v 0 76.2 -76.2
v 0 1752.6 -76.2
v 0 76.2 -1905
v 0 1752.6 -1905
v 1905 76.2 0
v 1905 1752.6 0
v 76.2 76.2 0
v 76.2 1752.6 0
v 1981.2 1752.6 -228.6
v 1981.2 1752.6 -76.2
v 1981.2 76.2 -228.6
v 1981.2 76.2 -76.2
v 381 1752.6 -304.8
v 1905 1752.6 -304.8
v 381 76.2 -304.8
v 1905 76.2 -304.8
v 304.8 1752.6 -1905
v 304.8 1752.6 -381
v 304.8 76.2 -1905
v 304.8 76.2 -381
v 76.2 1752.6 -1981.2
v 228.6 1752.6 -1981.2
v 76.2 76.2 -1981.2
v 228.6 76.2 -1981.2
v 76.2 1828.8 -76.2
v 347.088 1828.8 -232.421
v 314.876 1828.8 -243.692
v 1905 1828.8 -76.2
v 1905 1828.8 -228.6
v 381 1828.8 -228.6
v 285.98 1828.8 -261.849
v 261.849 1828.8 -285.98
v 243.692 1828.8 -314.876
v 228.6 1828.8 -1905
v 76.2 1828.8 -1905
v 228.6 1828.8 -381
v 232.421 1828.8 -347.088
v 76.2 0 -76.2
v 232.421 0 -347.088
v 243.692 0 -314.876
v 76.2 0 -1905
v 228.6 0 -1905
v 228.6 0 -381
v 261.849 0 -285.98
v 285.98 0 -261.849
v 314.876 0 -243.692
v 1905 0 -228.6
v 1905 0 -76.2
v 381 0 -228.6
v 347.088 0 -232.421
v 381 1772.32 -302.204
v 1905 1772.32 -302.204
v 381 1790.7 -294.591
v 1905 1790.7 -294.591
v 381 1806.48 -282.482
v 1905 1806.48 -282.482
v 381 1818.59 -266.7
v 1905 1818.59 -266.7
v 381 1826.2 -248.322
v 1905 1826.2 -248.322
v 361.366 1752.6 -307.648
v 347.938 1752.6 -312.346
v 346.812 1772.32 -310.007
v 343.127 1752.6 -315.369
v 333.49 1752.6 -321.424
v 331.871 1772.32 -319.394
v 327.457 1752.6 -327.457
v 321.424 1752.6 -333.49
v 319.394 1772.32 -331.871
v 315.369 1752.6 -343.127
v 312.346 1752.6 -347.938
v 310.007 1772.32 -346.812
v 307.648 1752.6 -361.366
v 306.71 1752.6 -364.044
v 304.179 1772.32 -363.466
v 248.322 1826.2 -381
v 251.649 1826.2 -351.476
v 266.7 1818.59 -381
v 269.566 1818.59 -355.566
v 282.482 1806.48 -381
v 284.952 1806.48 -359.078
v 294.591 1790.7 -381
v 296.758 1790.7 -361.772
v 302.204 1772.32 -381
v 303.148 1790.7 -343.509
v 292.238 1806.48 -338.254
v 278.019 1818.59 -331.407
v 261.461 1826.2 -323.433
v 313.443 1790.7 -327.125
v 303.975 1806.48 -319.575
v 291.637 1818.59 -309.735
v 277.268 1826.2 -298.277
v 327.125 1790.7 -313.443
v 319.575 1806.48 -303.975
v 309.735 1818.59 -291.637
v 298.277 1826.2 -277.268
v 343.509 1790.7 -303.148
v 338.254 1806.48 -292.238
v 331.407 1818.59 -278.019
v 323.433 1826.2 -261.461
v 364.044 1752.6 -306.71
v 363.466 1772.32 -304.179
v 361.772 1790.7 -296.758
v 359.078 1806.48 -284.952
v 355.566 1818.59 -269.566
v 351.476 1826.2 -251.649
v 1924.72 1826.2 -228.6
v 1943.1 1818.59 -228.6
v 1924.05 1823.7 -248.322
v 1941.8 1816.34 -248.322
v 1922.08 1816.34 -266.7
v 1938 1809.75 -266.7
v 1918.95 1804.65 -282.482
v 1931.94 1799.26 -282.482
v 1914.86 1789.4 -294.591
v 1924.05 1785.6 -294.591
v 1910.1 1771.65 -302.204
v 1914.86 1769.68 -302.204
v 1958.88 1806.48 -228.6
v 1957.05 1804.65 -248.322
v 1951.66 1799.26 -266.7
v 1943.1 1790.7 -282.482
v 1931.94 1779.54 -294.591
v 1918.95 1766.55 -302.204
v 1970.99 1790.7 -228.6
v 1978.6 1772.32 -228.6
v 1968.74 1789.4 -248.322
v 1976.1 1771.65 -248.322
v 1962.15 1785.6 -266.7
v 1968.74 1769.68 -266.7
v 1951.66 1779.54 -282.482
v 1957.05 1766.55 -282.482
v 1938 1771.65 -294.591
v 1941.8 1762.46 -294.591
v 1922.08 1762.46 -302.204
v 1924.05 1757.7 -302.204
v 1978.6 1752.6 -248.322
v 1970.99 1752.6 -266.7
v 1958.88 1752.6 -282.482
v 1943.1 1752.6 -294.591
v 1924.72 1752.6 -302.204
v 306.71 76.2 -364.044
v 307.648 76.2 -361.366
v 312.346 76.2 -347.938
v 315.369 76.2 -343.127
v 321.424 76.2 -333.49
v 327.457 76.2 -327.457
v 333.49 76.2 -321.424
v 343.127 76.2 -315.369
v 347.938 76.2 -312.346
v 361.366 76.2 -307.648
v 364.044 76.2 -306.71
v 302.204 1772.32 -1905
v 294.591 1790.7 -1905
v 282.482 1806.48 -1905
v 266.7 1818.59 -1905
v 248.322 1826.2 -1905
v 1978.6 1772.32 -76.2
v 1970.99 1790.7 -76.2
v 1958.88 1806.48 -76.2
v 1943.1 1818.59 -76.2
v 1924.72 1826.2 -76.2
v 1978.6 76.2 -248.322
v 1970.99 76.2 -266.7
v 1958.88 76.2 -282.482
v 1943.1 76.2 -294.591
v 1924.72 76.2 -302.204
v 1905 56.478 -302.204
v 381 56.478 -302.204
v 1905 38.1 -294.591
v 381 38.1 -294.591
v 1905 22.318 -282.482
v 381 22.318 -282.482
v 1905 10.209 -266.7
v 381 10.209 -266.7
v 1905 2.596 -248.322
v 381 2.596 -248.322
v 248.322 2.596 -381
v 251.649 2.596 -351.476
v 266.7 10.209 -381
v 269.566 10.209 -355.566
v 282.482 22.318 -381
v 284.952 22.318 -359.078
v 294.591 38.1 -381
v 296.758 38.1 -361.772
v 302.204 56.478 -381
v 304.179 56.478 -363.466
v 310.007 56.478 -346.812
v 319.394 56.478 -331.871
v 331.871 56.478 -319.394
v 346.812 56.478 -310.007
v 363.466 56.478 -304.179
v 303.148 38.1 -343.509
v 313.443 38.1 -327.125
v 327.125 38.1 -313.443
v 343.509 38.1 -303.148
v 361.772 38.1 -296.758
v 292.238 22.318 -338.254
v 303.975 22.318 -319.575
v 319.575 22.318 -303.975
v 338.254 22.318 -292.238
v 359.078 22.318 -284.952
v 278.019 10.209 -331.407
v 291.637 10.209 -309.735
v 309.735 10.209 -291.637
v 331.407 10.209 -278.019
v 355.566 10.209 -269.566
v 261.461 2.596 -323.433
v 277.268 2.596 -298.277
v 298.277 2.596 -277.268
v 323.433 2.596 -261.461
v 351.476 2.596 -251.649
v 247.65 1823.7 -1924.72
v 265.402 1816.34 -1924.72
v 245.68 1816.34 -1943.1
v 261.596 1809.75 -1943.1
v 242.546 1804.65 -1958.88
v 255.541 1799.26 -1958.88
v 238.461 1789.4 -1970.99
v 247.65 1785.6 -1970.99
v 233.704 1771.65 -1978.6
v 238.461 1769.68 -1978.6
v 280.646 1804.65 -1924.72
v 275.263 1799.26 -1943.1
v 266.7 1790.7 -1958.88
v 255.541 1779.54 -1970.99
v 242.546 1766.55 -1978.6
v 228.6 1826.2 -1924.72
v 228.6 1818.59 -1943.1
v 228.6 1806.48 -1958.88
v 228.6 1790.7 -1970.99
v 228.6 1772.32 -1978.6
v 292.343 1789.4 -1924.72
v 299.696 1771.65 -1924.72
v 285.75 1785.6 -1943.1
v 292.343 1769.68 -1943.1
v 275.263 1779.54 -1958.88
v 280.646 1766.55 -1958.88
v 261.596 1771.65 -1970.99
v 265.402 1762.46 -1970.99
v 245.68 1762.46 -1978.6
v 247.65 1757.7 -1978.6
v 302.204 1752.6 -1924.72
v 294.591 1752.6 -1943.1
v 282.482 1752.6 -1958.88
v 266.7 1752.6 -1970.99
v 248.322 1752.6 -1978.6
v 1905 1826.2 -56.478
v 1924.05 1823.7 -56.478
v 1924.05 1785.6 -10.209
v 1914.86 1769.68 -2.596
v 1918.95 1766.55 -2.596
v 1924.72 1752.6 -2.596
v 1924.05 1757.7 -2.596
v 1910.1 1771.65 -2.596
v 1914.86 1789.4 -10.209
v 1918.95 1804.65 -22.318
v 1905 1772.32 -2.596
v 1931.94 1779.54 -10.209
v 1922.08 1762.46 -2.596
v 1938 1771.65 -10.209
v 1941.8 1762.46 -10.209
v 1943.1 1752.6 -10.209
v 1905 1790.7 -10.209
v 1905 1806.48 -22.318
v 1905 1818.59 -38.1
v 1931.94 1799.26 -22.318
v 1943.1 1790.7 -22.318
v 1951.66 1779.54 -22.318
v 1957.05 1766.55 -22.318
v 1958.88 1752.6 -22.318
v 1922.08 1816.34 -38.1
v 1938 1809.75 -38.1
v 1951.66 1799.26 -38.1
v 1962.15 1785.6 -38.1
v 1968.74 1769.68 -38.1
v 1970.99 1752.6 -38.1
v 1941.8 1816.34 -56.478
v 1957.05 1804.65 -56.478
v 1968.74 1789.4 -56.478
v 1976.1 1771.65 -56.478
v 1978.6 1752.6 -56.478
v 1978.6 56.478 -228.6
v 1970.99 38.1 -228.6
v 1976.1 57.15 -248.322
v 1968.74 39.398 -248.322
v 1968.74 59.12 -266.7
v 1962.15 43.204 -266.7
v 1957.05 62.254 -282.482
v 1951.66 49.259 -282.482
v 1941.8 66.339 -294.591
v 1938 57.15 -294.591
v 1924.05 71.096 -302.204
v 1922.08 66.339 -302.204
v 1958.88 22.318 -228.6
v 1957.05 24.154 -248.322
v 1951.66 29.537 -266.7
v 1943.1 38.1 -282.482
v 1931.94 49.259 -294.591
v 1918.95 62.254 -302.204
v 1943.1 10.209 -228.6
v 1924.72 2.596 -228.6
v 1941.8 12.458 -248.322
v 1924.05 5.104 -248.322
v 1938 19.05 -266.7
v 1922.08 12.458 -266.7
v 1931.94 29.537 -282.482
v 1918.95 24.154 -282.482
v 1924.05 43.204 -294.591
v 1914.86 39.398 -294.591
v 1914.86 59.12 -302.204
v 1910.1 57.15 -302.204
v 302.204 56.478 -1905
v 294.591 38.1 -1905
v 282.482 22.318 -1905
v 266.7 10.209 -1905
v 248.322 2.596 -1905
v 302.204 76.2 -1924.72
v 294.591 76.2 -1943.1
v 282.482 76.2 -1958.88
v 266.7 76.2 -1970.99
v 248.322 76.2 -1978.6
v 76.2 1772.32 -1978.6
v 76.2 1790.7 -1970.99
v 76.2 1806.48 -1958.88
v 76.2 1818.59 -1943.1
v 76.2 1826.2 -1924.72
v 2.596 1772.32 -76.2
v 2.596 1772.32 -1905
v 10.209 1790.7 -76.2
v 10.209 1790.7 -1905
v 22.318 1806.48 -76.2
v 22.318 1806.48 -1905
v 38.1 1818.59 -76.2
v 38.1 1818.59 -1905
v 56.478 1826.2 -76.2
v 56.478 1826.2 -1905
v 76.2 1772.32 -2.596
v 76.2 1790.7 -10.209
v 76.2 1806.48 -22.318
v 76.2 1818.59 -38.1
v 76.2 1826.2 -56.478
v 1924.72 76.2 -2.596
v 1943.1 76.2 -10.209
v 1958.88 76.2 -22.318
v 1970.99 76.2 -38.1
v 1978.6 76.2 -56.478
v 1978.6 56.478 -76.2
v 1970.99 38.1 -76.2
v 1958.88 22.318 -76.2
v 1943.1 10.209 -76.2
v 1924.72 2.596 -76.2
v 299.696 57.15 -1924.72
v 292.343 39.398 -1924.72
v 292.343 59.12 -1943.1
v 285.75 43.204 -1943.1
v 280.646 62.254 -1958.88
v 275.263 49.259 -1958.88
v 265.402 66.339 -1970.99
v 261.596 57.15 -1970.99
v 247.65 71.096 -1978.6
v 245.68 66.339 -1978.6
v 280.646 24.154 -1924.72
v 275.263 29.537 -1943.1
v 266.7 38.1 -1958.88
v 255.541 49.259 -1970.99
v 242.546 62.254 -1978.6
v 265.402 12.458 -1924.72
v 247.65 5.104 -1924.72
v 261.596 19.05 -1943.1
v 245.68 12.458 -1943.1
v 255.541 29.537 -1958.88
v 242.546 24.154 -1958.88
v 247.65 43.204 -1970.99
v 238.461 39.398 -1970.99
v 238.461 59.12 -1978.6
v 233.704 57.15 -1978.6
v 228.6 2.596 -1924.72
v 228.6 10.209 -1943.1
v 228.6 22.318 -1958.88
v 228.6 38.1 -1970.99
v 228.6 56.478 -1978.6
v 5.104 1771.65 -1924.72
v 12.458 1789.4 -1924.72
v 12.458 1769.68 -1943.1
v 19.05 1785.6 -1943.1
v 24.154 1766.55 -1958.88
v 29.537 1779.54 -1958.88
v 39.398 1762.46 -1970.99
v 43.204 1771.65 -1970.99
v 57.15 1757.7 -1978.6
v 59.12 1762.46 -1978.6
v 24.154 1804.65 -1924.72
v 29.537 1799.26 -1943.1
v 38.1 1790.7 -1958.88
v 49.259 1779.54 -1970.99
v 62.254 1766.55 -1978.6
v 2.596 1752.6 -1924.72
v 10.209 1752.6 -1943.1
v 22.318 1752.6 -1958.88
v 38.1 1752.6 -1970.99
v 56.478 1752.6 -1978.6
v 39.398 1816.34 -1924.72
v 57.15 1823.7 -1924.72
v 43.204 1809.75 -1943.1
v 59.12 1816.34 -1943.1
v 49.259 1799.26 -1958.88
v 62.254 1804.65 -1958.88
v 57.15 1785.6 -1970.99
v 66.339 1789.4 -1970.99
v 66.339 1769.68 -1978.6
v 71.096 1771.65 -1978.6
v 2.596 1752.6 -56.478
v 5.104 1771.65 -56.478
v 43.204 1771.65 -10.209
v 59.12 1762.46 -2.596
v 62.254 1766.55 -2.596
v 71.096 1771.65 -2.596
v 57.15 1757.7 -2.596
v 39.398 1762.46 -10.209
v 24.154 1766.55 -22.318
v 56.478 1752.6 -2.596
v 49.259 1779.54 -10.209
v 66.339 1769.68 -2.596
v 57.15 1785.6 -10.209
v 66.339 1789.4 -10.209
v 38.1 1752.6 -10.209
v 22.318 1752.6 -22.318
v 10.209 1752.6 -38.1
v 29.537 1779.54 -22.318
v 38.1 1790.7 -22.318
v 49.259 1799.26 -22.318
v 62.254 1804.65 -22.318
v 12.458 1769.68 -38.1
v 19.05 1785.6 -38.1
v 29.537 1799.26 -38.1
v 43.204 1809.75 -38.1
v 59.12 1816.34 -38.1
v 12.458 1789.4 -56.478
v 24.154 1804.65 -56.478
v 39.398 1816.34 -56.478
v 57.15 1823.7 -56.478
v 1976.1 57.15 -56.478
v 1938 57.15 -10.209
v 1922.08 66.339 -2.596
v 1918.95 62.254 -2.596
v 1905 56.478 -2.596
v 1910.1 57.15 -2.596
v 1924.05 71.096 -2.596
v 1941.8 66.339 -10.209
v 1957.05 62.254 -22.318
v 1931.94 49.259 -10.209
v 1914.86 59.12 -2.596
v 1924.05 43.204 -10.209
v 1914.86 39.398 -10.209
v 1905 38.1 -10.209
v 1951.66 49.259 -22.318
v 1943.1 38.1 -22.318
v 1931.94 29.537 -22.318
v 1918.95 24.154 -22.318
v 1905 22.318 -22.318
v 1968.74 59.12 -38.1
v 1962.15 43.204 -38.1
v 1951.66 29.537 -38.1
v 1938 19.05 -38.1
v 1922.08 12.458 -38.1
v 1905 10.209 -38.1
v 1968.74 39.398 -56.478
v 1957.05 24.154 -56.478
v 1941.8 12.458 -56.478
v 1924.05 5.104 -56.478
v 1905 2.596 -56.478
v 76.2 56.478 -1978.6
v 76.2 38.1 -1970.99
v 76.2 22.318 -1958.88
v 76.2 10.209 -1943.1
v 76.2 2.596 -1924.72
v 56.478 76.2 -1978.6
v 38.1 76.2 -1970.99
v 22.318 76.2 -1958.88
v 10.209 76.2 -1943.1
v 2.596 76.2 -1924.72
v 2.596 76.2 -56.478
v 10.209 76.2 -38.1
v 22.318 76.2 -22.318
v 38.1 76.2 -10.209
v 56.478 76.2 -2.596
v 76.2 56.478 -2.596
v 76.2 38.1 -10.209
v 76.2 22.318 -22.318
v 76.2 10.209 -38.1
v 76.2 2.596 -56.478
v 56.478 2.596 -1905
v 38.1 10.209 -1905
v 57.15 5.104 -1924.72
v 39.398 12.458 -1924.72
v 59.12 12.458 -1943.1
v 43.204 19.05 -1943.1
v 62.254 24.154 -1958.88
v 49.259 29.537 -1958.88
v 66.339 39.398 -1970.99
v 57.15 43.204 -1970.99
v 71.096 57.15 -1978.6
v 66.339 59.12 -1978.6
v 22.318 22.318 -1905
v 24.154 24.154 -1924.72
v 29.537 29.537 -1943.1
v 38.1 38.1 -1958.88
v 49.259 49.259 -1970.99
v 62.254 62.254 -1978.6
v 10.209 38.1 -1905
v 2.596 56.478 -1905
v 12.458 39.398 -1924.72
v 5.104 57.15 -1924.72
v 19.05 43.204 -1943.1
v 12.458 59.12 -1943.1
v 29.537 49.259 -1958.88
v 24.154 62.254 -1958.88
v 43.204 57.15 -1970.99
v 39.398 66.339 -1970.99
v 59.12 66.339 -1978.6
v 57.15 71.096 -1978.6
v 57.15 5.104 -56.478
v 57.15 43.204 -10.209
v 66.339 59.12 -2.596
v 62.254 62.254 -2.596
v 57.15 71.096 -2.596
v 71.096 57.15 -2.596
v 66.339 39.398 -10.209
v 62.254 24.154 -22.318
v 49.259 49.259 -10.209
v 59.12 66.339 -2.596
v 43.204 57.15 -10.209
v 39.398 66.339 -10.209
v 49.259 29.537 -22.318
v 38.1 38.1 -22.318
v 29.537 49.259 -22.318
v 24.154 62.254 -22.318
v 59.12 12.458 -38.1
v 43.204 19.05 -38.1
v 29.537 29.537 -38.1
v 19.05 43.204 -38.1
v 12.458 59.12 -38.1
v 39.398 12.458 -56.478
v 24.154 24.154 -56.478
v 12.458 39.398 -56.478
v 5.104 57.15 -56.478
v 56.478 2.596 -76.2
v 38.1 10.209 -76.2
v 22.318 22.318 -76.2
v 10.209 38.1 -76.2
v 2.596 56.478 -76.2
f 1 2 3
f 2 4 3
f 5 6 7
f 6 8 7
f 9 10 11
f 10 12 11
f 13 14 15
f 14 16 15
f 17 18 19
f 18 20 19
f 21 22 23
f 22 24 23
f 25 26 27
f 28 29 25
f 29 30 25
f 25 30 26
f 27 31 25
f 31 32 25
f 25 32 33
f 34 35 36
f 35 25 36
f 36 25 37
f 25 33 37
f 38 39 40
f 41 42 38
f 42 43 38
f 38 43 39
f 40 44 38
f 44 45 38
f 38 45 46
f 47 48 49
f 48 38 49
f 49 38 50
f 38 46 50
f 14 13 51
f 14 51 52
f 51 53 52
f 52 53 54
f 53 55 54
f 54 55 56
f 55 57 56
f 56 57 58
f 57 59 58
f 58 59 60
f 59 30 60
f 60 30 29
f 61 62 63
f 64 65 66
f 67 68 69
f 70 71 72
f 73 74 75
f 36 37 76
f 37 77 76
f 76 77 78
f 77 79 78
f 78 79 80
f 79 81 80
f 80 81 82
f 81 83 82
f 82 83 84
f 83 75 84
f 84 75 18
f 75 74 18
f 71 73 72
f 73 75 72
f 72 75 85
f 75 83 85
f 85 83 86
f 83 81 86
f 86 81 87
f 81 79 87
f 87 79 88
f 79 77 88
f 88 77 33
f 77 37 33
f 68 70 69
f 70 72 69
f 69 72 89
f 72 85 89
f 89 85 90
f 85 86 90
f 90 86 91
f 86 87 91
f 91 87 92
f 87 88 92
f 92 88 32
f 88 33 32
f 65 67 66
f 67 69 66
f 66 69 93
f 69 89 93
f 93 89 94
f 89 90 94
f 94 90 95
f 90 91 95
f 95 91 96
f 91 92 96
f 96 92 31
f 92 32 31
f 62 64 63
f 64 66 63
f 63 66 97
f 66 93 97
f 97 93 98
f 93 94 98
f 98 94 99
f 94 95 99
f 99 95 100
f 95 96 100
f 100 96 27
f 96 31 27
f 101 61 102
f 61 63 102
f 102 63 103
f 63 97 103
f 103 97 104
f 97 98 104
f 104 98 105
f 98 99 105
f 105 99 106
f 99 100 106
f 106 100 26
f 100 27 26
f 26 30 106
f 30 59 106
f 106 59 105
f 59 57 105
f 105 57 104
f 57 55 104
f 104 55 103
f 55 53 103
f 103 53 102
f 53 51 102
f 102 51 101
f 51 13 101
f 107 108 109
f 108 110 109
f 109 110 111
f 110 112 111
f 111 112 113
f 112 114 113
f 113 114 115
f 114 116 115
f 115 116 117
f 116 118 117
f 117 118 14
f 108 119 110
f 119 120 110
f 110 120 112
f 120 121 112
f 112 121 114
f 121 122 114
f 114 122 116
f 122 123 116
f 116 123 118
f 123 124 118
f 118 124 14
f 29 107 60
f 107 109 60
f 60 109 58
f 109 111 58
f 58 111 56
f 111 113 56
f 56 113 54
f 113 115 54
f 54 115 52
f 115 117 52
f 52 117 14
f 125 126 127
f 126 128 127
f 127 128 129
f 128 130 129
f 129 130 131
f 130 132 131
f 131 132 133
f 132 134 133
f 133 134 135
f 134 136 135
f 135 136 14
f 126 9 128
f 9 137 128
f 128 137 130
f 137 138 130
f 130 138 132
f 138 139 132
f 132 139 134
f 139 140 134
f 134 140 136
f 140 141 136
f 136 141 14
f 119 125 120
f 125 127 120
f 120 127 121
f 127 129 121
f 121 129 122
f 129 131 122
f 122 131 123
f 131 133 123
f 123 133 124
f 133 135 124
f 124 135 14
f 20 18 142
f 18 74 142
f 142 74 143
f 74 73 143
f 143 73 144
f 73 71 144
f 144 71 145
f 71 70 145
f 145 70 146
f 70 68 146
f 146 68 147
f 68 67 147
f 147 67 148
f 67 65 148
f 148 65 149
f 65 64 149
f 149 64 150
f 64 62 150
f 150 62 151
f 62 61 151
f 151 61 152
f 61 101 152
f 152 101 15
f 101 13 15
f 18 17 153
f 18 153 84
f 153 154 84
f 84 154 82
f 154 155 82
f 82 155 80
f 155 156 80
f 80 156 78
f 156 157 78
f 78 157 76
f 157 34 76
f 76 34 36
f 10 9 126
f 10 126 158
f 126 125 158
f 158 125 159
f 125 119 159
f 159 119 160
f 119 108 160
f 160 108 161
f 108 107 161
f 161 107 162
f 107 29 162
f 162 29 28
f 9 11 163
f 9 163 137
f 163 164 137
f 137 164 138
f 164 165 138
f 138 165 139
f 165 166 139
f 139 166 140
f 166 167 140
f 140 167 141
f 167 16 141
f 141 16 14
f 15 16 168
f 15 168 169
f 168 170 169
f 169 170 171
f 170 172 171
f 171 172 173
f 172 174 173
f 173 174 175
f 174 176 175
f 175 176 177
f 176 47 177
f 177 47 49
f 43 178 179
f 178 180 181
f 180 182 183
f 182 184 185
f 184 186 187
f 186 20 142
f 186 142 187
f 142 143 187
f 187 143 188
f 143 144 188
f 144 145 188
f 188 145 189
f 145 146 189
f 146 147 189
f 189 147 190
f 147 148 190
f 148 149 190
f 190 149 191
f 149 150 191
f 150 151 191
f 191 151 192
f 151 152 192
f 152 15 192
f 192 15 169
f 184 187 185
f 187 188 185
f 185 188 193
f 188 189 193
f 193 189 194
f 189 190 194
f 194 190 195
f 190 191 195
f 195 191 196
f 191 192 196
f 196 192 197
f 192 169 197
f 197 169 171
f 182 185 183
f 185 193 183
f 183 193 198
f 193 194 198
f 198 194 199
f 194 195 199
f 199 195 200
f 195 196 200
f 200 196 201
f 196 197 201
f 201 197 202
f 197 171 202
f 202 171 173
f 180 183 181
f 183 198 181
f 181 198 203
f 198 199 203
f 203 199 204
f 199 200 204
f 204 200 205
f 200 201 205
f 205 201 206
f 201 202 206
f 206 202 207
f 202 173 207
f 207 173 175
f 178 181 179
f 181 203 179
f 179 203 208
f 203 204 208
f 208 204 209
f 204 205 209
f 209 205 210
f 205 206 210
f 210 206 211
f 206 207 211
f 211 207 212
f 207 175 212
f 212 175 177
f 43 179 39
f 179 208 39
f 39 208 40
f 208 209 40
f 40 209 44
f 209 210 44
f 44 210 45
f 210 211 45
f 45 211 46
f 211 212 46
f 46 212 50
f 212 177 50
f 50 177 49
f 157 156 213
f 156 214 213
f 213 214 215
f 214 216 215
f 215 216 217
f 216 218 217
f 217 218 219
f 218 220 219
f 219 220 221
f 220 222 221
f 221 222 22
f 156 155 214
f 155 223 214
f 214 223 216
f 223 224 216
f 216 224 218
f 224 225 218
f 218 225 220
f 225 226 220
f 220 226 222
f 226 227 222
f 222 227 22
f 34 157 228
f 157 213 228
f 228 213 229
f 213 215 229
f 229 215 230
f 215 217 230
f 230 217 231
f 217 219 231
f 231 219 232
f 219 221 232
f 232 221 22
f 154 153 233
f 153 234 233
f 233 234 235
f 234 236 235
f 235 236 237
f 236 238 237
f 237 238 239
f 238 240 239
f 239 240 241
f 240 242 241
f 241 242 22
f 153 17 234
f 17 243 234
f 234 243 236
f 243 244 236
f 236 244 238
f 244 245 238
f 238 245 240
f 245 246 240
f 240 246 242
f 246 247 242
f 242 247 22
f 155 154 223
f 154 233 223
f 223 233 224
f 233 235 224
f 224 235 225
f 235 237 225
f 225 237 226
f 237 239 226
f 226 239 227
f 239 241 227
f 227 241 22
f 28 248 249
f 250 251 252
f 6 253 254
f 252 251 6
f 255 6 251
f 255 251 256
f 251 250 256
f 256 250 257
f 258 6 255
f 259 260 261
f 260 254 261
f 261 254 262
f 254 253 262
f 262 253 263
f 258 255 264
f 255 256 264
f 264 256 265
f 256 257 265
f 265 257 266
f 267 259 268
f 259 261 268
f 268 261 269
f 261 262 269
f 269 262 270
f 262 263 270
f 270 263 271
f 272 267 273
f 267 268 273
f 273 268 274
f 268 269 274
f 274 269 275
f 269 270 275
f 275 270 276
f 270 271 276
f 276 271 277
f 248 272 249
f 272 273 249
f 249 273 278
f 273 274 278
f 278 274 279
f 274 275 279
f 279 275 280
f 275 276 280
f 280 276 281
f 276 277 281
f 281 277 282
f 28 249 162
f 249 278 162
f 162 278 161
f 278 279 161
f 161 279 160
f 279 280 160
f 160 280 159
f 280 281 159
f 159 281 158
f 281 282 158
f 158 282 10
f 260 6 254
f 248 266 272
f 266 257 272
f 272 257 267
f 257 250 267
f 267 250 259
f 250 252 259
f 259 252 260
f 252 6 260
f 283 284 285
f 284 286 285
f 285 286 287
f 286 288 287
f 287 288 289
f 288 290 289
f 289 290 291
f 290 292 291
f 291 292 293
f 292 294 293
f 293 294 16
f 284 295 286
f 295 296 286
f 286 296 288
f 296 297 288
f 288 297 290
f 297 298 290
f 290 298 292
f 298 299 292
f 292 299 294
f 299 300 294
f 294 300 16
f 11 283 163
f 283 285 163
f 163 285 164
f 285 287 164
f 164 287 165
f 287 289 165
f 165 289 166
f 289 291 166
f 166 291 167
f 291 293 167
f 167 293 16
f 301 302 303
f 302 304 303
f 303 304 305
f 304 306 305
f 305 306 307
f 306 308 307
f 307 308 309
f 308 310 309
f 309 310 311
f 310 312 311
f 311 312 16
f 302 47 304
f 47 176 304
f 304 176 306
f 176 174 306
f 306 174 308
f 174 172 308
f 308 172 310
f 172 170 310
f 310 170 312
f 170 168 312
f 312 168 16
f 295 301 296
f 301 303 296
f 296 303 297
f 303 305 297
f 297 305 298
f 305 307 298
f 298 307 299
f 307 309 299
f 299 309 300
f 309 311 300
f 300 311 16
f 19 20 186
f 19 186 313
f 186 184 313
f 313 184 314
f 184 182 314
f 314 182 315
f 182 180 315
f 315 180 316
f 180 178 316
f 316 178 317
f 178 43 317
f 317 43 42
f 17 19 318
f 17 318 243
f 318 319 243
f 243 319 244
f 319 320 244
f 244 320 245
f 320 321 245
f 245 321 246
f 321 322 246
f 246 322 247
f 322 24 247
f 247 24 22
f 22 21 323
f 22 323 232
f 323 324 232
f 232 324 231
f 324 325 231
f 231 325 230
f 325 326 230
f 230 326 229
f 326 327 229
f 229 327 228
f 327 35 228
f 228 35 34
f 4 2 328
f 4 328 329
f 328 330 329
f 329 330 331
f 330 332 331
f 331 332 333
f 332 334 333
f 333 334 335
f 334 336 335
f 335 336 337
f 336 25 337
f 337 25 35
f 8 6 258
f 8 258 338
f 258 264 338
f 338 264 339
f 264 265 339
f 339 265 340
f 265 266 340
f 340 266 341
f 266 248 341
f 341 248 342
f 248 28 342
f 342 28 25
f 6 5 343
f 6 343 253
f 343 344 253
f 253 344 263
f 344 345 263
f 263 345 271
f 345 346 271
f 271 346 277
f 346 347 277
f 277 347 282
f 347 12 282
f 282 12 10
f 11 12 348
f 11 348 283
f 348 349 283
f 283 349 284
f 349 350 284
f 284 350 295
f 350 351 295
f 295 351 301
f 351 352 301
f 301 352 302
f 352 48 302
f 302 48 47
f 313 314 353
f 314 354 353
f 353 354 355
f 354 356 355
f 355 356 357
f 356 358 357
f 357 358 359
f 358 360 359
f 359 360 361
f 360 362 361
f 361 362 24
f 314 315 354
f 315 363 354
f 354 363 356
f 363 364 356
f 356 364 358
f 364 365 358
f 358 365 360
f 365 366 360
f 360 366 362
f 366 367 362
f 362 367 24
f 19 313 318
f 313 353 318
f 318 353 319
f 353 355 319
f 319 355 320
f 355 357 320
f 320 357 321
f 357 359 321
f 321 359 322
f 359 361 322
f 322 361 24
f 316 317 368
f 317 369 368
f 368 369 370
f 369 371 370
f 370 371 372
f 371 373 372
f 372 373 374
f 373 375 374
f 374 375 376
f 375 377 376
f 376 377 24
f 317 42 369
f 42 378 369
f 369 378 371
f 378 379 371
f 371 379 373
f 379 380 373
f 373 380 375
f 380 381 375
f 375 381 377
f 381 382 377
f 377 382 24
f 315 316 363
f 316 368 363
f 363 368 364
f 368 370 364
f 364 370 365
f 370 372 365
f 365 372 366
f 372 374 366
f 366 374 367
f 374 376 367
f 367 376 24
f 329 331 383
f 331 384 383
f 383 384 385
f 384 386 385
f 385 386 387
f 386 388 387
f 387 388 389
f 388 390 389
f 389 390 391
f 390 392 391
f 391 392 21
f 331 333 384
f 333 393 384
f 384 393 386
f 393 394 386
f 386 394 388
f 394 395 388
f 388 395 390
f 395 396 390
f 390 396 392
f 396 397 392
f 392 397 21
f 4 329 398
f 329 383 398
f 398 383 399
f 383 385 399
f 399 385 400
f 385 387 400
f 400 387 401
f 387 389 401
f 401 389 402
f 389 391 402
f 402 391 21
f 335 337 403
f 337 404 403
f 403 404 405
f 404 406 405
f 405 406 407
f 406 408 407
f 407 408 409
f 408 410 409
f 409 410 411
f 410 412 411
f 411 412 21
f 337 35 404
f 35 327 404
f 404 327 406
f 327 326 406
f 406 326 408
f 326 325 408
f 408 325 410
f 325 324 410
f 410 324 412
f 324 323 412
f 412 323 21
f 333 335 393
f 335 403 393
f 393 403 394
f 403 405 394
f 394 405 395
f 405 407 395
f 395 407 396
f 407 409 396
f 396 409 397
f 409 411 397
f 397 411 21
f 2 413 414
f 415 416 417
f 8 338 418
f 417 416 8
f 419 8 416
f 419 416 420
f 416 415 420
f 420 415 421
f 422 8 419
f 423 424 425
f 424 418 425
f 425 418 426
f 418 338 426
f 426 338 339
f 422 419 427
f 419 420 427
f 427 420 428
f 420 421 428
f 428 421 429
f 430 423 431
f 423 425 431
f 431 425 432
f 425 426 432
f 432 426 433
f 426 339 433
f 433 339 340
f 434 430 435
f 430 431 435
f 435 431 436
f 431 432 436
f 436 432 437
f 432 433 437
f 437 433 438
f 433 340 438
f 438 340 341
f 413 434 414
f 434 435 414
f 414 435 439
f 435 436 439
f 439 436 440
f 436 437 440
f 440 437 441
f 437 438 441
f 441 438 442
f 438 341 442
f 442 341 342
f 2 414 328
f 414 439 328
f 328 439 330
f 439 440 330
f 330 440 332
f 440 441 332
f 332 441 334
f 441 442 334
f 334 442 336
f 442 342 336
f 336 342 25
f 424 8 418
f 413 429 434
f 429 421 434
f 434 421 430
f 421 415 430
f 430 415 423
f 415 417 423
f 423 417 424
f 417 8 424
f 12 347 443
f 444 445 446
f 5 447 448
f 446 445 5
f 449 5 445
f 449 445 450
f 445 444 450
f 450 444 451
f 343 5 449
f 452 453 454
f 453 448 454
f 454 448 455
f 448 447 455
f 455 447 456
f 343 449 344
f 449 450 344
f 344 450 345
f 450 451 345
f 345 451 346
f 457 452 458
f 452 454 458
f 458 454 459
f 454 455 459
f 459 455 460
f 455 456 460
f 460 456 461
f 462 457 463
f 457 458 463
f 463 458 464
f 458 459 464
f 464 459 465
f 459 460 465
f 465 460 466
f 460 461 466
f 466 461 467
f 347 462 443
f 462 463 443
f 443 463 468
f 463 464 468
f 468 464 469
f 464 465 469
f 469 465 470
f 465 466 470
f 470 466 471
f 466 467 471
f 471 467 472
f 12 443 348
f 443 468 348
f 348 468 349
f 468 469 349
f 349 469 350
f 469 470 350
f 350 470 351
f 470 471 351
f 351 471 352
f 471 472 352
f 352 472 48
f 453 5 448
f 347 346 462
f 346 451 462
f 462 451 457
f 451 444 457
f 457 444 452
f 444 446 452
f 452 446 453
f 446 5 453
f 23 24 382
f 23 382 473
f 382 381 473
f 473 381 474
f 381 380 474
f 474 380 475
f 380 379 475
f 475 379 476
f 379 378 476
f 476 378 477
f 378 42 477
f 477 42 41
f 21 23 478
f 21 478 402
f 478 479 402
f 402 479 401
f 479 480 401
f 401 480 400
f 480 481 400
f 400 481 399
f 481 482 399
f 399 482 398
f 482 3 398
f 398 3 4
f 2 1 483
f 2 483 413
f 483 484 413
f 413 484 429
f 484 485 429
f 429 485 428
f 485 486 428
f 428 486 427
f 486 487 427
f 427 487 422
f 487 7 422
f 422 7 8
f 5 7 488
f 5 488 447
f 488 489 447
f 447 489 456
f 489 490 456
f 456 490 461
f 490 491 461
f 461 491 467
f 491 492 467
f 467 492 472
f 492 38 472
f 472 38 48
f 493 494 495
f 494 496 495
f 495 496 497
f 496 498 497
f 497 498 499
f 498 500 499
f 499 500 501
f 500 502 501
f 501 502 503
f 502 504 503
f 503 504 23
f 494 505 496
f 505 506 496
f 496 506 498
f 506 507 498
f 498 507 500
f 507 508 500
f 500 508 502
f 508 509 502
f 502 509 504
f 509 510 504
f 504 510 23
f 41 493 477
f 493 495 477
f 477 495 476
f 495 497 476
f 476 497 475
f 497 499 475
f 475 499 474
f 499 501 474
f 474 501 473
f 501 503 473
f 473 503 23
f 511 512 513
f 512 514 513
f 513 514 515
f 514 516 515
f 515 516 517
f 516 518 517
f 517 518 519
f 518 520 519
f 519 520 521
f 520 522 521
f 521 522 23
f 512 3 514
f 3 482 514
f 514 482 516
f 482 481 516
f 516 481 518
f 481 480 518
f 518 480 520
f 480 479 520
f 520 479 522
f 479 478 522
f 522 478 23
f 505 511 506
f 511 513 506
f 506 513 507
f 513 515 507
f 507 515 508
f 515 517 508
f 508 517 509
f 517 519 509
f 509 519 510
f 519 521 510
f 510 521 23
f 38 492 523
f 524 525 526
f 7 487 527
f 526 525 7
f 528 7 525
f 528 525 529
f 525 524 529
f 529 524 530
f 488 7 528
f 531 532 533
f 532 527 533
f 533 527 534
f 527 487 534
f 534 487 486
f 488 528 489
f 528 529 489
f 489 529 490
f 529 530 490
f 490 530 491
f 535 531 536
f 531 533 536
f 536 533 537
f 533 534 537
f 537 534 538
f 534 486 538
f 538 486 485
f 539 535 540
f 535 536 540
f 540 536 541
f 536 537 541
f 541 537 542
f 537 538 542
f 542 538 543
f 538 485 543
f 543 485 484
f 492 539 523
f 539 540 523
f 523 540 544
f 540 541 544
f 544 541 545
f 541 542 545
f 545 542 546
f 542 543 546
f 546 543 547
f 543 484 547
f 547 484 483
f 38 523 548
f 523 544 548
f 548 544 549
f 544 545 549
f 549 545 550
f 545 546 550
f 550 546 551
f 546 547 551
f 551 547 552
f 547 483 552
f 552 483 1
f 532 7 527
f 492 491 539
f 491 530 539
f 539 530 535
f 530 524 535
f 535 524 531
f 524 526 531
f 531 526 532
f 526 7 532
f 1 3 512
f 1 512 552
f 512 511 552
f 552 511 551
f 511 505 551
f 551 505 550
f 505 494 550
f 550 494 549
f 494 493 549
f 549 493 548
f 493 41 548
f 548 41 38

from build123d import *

# Parameters (mm, degrees)
BOSS_EXTRUDE1_DEPTH = 1828.8
FILLET1_R           = 76.2


with BuildPart() as part:
    # Sketch1 → Boss-Extrude1 (new body)
    with BuildSketch(Plane(origin=(0, 0, 0), x_dir=(1, 0, 0), z_dir=(0, 1, 0))):
        Polygon((304.8, 1981.2), (304.8, 304.8), (1981.2, 304.8), (1981.2, 0), (0, 0), (0, 1981.2), align=None)
    extrude(amount=BOSS_EXTRUDE1_DEPTH)

    # Fillet1
    fillet1_edges = [part.edges().sort_by_distance(p)[0] for p in [
        (1981.2, 1828.8, -152.4),
        (0, 914.4, -1981.2),
        (304.8, 914.4, -1981.2),
        (304.8, 914.4, -304.8),
        (1981.2, 914.4, -304.8),
        (1981.2, 914.4, 0),
        (0, 914.4, 0),
        (1143, 1828.8, -304.8),
        (304.8, 1828.8, -1143),
        (152.4, 1828.8, -1981.2),
        (0, 1828.8, -990.6),
        (152.4, 0, -1981.2),
        (304.8, 0, -1143),
        (1143, 0, -304.8),
        (990.6, 1828.8, 0),
        (1981.2, 0, -152.4),
        (990.6, 0, 0),
        (0, 0, -990.6),
    ]]
    fillet(fillet1_edges, radius=FILLET1_R)


solid = part.part
